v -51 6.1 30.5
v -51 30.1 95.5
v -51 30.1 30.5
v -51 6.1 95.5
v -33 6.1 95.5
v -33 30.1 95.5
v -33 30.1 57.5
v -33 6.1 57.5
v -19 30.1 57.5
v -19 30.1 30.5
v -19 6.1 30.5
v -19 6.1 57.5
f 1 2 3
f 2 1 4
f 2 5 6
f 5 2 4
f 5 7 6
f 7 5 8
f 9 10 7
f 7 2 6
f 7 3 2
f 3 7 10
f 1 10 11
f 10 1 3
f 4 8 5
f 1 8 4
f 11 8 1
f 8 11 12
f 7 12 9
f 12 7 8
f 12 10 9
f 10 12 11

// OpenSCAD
// file: D:/Projects/assembly-workshop/outputs/Screen_Pi_Hue_SCR5-H8_2026-10-31/checks/geometry.scad
// SCR5-G; mm; FRONT view: X right, Z up, Y into rack. Glass/plate front Y=0.
// Measured values: work/screen-5in/Dimensions.md. Physical fit/strength UNKNOWN.
part="plate";
DROP=0.45; // coupon winner can be substituted here; all three pins use this DROP
LIP=0.8; LIP_ON=true;
LIP_EDGES=[true,true,false,false]; // left,right,bottom,top; Brian: side lips only, cosmetic
FRAME_STEP=1.5; // measured glass-edge inset to metal LCD frame, left/right only
SHIM=0; // moves rear frame seat and plate-boss mating face back
$fn=48;
GCX=33; GCZ=41.5; PW=252; PH=88.8; PT=4;
GW=120.7; GH=77.2; CLEAR=0.2; WW=GW+2*CLEAR; WH=GH+2*CLEAR;
SEAT=13.3+SHIM; FT=3;
SO=[56.45,34]; BTN_X=[45.5,35.5,25.5];
PCB_TOP=38; GAP=0.10; LEAF_T=0.8;
HOLE=[3.4,40.3,44.7];
BX=[GCX-68,GCX+68]; BZ=[10,72];
// DSI connector X extent is unmeasured: conservative assumed 8 mm inward from PCB edge.
DSI=[GCX-60.5,9.1,GCZ-38+30,8,5.25,21];
module xz(y,d){translate([0,y+d,0])rotate([90,0,0])linear_extrude(d)children();}
// rr/rack_slots copied from SCR5-F; same exact slot centres, outline shifted -0.05 Z to centre 44.4.
module rr(w,h,r){hull()for(x=[-w/2+r,w/2-r],z=[-h/2+r,h/2-r])translate([x,z])circle(r=r);}
module rack_slots(){for(x=[-118.2625,118.2625],z=[6.323,38.127,50.773,82.577])translate([x,z])hull()for(dx=[-1.5,1.5])translate([dx,0])circle(d=7);}
module cyl_y(x,y,z,d,h){translate([x,y,z])rotate([-90,0,0])cylinder(d=d,h=h);}
module window_cut(){
  xz(-0.02,4.04)translate([GCX,GCZ])square([WW,WH],center=true);
  // 0.3 x 45-degree chamfer, square corners, front only.
  translate([GCX,0.3,GCZ])rotate([90,0,0])
    linear_extrude(height=0.3,scale=[(WW+0.6)/WW,(WH+0.6)/WH])square([WW,WH],center=true);
}
module lips(){
  // Cosmetic side ledges only; rear frame/standoffs set depth and retain the screen.
  if(LIP_ON)for(i=[0:3])if(LIP_EDGES[i]){
    if(i<2)translate([GCX+(i==0?-WW/2:WW/2-LIP),2.5,GCZ-GH/2+4])cube([LIP,0.8,GH-8]);
    else translate([GCX-GW/2+4,2.5,GCZ+(i==2?-WH/2:WH/2-LIP)])cube([GW-8,0.8,LIP]);
  }
}
// Leaf/nub/bump geometry copied from SCR5-WP-A, translated to this glass centre.
module leaves(){for(x=BTN_X)translate([GCX+x-1.5,0,GCZ]){
  translate([0,0,PCB_TOP+GAP+0.9+0.1])cube([3,11.8,LEAF_T]);
  translate([0,10.2,PCB_TOP+GAP])cube([3,1.4,1.0+LEAF_T/2]);
  translate([0,10.4,PCB_TOP+GAP+1.0+LEAF_T])cube([3,1.0,0.9]);
}}
module plate(){difference(){union(){
  difference(){xz(0,PT)translate([0,PH/2])rr(PW,PH,2.5);window_cut();}
  for(x=BX,z=BZ)cyl_y(x,3.9,z,8,SEAT-3.9);
  leaves(); lips();
 }
 xz(-0.02,4.04)rack_slots();
 for(x=BTN_X)translate([GCX+x-HOLE[0]/2,-0.02,GCZ+HOLE[1]])cube([HOLE[0],SEAT+FT+0.04,HOLE[2]-HOLE[1]]);
 // Printed-in screw pilots (no heat-set OD assumption): nominal M2.5, fit UNKNOWN.
 for(x=BX,z=BZ)cyl_y(x,SEAT-6,z,2.1,6.02);
 // Rear engraving, 0.5 deep, left field.
 xz(3.5,0.52)translate([-75,40])mirror([1,0])text("SCR5-G",size=6,halign="center",font="Liberation Sans:style=Bold");
}}
module frame_blank(){
  // C-shaped perimeter; no material across the board centre / touch FPC.
  xz(SEAT,FT)translate([GCX,GCZ])difference(){square([132,76],center=true);square([116,60],center=true);}
  for(sx=[-1,1],sz=[-1,1])cyl_y(GCX+sx*SO[0],SEAT,GCZ+sz*SO[1],9,FT);
  for(x=BX,z=BZ)hull(){cyl_y(x,SEAT,z,8,FT);cyl_y(GCX+(x<GCX?-62:62),SEAT,z,8,FT);}
}
module dsi_keepout(){translate([DSI[0]-3,DSI[1]-3,DSI[2]-3])cube([DSI[3]+6,DSI[4]+6,DSI[5]+6]);}
module ribbon_route(){
  // Open left/up corridor 18 mm wide; extends past top of plate.
  translate([GCX-84,6.1,GCZ-11])cube([18,24,65]);
  translate([GCX-84,6.1,GCZ-11])cube([32,24,27]);
}
module frame(){difference(){frame_blank();dsi_keepout();ribbon_route();
 for(sx=[-1,1],sz=[-1,1])cyl_y(GCX+sx*SO[0],SEAT-0.02,GCZ+sz*SO[1],2.8,FT+0.04);
 for(x=BX,z=BZ)cyl_y(x,SEAT-0.02,z,2.8,FT+0.04);
}}
// Pin polygon/cap/notch/dot design copied unchanged from SCR5-WP-A.
module pin(d,dots){s=2*d+0.5;difference(){union(){
 translate([-1.5,0,0])rotate([90,0,90])linear_extrude(3)polygon([
 [-s-0.02,40.5],[10.2,40.5],[10.2,41.0],[11.5,41.0],[11.5+2*d,41.0-d],[15,41.0-d],[15,44.5],[-s-0.02,44.5]]);
 translate([-2.5,-s-1.5,39.6])cube([5,1.5,5.8]);
 }for(i=[0:dots-1])translate([(i-(dots-1)/2)*1.4,-s-1.5-0.01,43.5])rotate([-90,0,0])cylinder(d=0.9,h=0.4);}}
module placed_pin(i){translate([GCX+BTN_X[i],0,GCZ])pin(DROP,i+1);}
// Measured layers: cover glass 0.9 + second glass 1.6, metal frame 3.0,
// open gap 2.0, PCB 1.6. Metal frame inset ~1.5 at LEFT/RIGHT only.
// PCB centred under glass and full metal-frame top/bottom extent remain UNKNOWN.
module glass(){translate([GCX-GW/2,0,GCZ-GH/2])cube([GW,2.5,GH]);}
module lcd(){
  translate([GCX-GW/2+FRAME_STEP,2.5,GCZ-GH/2])cube([GW-2*FRAME_STEP,3.0,GH]);
}
module pcb(){translate([GCX-60.5,7.5,GCZ-38])cube([121,1.6,76]);}
module standoffs(){for(sx=[-1,1],sz=[-1,1])difference(){cyl_y(GCX+sx*SO[0],9.1,GCZ+sz*SO[1],5.5,4.2);cyl_y(GCX+sx*SO[0],9.08,GCZ+sz*SO[1],2.5,4.24);}}
module buttons(){for(x=BTN_X){
 translate([GCX+x-3.5,9.1,GCZ+38-3.4])cube([7,3.6,2.4]);
 translate([GCX+x-1.5,9.1,GCZ+37])cube([3,3.6,1]);
}}
module dsi(){translate([DSI[0],DSI[1],DSI[2]])cube([DSI[3],DSI[4],DSI[5]]);}
module touch(){translate([GCX-10,9.1,GCZ-5])cube([20,2,10]);} // lateral extent unmeasured
module dummy(){glass();lcd();pcb();standoffs();buttons();dsi();touch();}
module assembly(){color("gray")plate();color("orange")frame();for(i=[0:2])color("cyan")placed_pin(i);color([0.2,0.3,0.4,0.4])dummy();}
// main file
include <D:/Projects/assembly-workshop/outputs/Screen_Pi_Hue_SCR5-H8_2026-10-31/checks/geometry.scad>
ribbon_route();
